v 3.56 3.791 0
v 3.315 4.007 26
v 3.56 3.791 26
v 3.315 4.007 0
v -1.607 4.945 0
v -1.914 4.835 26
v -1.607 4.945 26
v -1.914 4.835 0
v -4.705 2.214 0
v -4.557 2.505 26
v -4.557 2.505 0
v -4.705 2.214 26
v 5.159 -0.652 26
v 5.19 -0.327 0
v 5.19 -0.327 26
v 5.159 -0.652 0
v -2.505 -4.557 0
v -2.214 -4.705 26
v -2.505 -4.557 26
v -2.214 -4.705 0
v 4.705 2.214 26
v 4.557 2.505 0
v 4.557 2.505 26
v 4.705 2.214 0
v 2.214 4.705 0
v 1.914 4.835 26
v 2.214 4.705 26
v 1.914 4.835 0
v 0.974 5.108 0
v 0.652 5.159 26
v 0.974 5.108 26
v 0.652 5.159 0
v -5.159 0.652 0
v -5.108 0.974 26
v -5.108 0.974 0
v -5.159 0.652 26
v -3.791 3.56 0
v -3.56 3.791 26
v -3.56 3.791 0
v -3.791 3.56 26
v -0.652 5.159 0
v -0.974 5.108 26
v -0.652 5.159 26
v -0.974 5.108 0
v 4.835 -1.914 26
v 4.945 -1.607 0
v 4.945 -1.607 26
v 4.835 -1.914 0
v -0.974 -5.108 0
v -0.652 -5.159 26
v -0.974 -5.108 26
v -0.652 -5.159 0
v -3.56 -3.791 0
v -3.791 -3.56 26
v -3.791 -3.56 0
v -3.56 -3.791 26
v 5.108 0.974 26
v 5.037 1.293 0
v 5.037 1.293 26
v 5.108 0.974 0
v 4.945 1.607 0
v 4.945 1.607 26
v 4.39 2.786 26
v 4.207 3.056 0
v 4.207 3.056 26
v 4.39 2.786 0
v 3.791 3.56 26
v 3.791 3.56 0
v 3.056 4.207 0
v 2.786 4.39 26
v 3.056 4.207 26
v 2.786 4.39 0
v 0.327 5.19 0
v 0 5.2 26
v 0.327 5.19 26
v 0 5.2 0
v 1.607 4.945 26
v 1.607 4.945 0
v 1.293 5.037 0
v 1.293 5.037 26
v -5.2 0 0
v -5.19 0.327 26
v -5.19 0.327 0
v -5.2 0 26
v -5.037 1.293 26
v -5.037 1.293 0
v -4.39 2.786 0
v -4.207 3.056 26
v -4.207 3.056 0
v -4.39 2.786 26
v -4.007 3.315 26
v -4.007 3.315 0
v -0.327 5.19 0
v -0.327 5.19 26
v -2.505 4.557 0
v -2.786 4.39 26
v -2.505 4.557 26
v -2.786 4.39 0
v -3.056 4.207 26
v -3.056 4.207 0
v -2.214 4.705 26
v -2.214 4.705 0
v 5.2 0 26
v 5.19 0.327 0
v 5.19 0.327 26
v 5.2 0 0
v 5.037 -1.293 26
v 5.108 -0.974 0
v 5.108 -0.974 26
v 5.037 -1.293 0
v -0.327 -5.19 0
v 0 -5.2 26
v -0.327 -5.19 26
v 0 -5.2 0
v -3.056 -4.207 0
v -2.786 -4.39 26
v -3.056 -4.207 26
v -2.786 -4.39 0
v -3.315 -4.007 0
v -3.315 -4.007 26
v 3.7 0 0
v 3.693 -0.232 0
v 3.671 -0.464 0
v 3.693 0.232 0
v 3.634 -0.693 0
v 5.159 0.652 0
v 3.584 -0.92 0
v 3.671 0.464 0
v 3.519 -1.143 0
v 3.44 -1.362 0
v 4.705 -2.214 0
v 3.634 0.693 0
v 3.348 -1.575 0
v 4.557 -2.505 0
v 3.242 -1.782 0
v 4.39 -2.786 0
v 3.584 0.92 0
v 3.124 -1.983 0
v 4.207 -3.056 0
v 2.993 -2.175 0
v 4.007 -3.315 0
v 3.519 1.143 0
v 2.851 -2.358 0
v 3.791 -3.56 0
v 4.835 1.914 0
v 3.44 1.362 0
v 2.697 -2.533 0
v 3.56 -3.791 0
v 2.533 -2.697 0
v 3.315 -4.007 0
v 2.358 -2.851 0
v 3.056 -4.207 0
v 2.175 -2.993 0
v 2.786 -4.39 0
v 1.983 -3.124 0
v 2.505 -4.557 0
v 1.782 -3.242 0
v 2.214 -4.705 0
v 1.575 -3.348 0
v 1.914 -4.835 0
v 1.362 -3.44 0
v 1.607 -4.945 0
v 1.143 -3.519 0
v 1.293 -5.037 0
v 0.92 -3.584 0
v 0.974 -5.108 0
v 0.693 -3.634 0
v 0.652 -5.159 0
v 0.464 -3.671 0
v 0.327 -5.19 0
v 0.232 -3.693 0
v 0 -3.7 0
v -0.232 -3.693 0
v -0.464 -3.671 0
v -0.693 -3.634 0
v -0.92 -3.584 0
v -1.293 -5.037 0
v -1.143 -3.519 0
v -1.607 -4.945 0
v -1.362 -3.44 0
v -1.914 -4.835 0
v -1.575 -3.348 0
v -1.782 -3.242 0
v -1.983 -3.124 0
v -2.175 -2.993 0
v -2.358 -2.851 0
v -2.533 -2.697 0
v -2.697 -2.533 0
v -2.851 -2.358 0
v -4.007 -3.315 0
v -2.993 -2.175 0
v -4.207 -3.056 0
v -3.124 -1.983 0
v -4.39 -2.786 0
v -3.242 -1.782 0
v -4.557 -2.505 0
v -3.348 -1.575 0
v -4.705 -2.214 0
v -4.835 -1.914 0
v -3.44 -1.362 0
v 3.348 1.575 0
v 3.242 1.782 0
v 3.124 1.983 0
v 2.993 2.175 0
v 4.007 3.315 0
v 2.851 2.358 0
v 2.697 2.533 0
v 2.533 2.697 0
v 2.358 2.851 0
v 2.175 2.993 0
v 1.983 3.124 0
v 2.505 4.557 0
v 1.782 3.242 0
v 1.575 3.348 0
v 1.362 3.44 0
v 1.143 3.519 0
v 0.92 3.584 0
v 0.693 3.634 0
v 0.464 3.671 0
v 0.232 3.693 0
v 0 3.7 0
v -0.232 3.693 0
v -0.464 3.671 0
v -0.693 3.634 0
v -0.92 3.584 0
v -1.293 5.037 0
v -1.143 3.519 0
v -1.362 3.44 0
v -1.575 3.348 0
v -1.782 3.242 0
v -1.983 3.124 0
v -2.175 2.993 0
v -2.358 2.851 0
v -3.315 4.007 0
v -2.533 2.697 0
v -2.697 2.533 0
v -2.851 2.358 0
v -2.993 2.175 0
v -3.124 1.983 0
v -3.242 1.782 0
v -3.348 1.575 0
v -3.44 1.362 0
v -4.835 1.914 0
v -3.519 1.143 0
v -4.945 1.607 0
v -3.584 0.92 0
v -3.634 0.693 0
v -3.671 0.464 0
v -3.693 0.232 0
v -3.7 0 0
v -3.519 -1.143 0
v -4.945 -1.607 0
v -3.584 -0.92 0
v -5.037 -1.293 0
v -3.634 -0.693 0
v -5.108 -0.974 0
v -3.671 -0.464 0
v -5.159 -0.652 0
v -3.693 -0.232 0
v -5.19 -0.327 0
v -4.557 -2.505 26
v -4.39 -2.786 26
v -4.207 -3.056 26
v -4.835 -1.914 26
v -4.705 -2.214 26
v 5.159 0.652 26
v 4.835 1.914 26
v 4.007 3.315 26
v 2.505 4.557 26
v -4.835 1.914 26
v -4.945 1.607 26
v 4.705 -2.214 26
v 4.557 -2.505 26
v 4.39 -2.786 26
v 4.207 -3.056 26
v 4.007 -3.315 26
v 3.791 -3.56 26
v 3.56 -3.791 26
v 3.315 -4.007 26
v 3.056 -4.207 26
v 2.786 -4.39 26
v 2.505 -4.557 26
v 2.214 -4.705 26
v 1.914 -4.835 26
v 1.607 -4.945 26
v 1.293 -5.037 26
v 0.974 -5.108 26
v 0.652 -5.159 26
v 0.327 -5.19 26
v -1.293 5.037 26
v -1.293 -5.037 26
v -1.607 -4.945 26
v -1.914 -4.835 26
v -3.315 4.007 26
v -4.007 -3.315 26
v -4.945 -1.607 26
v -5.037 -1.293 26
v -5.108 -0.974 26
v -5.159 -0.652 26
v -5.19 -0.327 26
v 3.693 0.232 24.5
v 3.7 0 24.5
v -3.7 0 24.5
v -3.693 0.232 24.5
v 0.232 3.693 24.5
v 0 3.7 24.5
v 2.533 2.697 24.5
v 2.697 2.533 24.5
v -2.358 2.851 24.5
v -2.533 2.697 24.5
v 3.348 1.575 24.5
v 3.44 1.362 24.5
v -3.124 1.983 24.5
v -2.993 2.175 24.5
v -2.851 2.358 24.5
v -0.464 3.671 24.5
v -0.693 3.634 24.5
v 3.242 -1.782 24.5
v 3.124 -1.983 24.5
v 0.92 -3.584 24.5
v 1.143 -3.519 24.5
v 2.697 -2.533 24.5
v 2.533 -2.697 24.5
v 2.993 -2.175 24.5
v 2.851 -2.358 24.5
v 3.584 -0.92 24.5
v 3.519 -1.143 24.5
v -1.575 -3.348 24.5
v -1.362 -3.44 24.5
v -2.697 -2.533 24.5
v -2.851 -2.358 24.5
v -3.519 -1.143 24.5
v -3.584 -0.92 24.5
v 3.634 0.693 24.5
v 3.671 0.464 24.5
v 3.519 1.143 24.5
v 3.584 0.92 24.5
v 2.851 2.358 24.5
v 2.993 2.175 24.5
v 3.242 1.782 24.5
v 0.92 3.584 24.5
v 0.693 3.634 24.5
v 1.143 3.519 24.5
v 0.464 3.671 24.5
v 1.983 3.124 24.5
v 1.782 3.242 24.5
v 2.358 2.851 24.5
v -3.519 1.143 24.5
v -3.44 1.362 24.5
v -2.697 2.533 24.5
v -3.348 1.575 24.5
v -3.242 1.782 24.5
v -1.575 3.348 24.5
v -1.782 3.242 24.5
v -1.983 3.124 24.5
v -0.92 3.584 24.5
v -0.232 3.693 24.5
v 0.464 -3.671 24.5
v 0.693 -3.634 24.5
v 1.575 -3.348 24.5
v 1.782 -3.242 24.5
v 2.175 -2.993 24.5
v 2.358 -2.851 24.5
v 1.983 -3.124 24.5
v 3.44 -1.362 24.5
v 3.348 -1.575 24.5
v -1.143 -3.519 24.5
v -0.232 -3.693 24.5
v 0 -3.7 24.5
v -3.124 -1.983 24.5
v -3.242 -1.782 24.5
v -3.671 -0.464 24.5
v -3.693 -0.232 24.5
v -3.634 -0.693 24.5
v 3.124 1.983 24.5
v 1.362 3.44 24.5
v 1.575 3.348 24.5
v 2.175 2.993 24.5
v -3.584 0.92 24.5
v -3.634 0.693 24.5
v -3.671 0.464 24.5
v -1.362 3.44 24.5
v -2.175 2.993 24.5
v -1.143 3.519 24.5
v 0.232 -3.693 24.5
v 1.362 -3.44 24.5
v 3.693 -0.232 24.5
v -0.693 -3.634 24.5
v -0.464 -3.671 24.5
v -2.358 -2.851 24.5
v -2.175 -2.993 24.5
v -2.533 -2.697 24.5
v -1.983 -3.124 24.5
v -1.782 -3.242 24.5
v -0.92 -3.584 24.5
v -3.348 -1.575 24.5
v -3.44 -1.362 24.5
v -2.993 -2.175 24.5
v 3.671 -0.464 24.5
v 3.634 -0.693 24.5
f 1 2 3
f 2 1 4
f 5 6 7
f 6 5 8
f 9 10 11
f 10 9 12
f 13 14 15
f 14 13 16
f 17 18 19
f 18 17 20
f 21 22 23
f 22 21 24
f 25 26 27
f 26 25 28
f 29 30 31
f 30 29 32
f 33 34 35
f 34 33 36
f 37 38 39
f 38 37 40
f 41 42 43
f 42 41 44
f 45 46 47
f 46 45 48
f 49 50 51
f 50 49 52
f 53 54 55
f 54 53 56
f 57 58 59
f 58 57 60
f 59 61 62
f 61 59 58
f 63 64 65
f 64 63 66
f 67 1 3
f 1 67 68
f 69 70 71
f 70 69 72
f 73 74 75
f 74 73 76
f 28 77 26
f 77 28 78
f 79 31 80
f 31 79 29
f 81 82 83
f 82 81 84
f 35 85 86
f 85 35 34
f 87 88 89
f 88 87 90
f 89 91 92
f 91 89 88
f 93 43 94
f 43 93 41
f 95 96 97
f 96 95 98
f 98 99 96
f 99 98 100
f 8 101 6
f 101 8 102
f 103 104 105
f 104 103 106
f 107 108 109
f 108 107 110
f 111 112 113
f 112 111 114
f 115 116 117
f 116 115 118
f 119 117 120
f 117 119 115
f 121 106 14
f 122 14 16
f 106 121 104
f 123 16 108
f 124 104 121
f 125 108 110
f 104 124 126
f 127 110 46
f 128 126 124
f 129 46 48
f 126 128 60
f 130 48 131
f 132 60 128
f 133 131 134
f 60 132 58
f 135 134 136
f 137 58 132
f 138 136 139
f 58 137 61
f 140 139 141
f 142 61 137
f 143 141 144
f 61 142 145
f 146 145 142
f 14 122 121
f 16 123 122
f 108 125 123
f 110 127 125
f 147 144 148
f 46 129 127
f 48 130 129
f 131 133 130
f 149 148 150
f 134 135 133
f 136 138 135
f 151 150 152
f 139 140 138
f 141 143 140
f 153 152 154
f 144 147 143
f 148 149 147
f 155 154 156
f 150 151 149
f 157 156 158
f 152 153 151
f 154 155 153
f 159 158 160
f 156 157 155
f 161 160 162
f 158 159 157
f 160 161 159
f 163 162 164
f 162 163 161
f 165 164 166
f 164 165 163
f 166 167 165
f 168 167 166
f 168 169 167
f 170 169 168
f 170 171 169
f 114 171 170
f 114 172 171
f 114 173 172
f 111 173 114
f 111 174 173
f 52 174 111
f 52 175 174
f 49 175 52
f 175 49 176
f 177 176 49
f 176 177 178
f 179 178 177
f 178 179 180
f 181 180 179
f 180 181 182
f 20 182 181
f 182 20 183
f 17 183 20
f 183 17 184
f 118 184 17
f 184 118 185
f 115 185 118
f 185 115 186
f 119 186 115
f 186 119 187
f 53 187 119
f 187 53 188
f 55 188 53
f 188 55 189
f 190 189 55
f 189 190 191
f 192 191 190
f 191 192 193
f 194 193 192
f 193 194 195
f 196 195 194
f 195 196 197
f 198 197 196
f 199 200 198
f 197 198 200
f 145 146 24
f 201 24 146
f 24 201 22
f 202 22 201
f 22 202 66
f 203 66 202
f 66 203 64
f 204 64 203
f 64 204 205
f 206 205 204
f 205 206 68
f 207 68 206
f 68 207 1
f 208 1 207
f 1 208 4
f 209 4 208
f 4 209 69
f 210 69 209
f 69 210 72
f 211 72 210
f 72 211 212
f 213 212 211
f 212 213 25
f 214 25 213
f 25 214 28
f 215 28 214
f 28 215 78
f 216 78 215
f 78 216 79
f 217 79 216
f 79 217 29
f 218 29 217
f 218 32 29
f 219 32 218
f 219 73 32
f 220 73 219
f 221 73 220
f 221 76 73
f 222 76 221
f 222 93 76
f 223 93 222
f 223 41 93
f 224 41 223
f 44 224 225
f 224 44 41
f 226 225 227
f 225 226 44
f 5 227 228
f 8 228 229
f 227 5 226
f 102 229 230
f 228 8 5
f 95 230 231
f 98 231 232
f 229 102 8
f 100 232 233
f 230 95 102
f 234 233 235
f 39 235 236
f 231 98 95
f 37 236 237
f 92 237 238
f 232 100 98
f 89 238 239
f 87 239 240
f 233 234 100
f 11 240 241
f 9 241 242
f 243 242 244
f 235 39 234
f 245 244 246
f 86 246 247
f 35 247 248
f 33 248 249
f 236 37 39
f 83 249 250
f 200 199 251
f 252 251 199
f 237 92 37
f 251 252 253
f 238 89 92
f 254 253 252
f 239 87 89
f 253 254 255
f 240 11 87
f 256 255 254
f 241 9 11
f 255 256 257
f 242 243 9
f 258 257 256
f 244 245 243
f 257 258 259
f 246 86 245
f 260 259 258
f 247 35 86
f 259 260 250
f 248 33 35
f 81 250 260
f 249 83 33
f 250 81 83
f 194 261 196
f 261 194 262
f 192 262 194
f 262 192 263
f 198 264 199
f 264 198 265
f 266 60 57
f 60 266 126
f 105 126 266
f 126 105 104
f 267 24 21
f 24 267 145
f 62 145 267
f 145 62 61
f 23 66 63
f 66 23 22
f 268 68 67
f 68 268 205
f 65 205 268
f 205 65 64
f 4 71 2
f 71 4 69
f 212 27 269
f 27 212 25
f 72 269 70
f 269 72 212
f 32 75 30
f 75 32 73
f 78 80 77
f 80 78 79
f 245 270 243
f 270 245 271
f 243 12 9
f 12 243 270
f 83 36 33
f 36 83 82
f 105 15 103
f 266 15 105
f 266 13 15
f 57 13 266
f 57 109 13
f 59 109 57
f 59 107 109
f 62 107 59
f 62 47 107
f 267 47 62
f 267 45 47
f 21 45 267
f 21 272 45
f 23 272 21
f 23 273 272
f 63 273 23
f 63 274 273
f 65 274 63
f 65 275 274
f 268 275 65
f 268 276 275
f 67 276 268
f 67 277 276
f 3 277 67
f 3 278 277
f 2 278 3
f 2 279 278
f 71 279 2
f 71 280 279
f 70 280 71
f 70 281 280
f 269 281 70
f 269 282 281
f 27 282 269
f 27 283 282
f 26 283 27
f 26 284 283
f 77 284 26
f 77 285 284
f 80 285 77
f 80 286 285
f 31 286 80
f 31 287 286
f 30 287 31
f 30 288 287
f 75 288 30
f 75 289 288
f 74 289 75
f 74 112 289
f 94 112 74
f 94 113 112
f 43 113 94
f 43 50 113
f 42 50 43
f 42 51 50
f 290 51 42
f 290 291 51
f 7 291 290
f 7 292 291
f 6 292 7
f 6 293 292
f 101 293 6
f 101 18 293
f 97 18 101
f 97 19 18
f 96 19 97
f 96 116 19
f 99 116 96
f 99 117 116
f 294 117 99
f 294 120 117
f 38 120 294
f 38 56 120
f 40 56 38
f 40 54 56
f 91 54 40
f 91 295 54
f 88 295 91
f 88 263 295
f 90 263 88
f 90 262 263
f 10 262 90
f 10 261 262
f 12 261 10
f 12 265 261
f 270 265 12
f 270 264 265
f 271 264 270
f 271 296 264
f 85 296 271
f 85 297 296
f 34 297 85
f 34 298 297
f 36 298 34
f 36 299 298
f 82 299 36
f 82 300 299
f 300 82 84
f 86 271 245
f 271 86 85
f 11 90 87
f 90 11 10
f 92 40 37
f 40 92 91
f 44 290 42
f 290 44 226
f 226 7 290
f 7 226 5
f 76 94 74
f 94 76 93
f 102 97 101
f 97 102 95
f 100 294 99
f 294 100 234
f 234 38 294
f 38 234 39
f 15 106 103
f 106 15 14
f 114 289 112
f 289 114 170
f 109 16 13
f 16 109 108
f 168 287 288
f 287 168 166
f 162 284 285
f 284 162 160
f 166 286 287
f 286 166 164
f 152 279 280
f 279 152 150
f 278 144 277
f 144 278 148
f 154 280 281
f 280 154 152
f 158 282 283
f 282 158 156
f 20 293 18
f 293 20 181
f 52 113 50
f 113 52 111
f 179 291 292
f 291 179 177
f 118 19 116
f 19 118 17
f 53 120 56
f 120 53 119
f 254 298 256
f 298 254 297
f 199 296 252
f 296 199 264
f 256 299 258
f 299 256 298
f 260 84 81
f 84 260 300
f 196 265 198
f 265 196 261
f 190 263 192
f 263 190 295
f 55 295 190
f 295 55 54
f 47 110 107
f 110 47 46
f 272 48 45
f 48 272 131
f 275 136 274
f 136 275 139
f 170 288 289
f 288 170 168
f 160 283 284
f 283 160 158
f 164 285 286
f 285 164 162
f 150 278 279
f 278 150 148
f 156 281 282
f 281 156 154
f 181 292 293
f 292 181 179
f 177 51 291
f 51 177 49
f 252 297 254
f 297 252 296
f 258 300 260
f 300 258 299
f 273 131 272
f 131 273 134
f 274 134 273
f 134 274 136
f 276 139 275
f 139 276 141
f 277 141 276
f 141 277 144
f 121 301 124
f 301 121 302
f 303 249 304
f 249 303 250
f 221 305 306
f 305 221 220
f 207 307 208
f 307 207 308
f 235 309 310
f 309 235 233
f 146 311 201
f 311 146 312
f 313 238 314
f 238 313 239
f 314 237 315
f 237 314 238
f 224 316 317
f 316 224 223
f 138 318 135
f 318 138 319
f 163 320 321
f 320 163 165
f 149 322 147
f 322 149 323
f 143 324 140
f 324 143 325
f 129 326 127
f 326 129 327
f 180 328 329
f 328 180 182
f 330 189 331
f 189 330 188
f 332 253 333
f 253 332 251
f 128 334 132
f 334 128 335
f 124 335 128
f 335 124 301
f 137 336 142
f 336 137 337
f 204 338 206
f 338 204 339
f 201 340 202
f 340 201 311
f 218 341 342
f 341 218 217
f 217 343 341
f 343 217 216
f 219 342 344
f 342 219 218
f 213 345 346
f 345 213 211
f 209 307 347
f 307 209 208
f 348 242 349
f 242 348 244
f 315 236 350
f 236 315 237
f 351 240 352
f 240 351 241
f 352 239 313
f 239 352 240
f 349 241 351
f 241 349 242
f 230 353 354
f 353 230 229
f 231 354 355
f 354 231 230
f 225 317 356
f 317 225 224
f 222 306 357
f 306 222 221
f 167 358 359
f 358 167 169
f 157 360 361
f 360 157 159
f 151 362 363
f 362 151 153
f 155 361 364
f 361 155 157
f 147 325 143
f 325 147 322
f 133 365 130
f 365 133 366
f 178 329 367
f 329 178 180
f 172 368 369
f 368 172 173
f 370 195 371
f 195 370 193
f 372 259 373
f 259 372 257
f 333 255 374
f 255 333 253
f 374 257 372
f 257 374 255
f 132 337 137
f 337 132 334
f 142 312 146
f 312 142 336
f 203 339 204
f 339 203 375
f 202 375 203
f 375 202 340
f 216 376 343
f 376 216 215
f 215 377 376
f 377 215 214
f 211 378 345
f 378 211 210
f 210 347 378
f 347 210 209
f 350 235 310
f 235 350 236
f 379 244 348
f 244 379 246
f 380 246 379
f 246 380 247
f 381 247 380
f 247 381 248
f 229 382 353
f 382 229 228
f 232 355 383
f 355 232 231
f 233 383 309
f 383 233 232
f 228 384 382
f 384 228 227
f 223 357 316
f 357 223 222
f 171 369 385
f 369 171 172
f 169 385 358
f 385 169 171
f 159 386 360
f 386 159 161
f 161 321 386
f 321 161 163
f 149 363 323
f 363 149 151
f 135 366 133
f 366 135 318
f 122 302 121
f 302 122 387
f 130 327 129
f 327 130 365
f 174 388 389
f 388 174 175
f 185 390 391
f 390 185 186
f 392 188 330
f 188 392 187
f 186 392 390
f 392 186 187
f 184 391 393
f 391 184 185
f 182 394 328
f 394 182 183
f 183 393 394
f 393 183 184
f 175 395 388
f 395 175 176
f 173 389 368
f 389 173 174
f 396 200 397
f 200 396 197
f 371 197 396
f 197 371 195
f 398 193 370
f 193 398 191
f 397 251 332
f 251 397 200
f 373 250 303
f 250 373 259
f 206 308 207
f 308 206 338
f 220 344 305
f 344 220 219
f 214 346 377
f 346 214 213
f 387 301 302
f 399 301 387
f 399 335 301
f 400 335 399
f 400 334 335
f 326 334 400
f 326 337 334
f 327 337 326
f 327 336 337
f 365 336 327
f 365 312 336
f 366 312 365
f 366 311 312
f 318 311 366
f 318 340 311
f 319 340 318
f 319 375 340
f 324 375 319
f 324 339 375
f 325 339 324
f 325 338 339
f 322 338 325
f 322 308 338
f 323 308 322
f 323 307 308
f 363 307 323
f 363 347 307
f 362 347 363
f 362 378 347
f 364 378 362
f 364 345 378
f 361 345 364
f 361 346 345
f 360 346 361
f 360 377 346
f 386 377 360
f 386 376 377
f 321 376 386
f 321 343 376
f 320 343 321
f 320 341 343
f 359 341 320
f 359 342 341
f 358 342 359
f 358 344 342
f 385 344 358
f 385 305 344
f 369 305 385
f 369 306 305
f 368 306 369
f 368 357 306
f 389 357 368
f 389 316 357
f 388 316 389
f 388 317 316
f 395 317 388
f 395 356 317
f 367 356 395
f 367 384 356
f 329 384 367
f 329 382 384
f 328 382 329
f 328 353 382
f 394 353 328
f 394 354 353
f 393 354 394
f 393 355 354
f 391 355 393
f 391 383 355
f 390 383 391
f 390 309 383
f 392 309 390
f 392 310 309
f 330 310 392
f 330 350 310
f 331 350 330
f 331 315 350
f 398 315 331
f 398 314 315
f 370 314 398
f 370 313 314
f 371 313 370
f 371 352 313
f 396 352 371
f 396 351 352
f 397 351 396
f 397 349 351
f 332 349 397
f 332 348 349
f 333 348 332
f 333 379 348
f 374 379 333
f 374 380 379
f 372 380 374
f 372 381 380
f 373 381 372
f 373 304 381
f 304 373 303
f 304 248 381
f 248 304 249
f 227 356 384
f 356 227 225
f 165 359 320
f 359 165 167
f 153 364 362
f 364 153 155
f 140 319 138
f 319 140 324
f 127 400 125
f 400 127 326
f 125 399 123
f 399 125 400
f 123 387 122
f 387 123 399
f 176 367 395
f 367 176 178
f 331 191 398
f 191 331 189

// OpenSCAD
// file: ../motor_housing.scad
/*
Title:          motor_housing.scad
Description:    encapsulation for the motors
Authors:        Pau Roura (@proura)
Date:           20180610
Version:        0.1
Notes:

    Default values for module motor_housing

    module motor_housing(
        w_walls=1.5,        //with of the walls
        d_motor=7.2,        //motor diameter
        h_motor_body=26,    //motor housing height
        d_motor_shaft=1     //motor shaft diameter
    )
*/

module motor_housing(w_walls=1.5, d_motor=7.2, h_motor_body=26, d_motor_shaft=1){
    difference() {
                            cylinder(d=d_motor+w_walls*2, h=h_motor_body); 
        translate([0,0,-1]) cylinder(d=d_motor, h=h_motor_body-w_walls+1);
        translate([0,0,1])  cylinder(d=d_motor_shaft, h=h_motor_body);
    }     
}

motor_housing();
// main file
/*
Title:          motor_housing.scad for generate STL file
Description:    encapsulation for the motors
Authors:        Pau Roura (@proura)
Date:           20180610
Version:        0.1
Notes:

    Default values for module motor_housing

    module motor_housing(
        w_walls=1.5,        //with of the walls
        d_motor=7.2,        //motor diameter
        h_motor_body=26,    //motor housing height
        d_motor_shaft=1     //motor shaft diameter
    )
*/

use <../motor_housing.scad>;
$fn = 100;
motor_housing(w_walls=1.5, d_motor=7.4, h_motor_body=26, d_motor_shaft=0);
